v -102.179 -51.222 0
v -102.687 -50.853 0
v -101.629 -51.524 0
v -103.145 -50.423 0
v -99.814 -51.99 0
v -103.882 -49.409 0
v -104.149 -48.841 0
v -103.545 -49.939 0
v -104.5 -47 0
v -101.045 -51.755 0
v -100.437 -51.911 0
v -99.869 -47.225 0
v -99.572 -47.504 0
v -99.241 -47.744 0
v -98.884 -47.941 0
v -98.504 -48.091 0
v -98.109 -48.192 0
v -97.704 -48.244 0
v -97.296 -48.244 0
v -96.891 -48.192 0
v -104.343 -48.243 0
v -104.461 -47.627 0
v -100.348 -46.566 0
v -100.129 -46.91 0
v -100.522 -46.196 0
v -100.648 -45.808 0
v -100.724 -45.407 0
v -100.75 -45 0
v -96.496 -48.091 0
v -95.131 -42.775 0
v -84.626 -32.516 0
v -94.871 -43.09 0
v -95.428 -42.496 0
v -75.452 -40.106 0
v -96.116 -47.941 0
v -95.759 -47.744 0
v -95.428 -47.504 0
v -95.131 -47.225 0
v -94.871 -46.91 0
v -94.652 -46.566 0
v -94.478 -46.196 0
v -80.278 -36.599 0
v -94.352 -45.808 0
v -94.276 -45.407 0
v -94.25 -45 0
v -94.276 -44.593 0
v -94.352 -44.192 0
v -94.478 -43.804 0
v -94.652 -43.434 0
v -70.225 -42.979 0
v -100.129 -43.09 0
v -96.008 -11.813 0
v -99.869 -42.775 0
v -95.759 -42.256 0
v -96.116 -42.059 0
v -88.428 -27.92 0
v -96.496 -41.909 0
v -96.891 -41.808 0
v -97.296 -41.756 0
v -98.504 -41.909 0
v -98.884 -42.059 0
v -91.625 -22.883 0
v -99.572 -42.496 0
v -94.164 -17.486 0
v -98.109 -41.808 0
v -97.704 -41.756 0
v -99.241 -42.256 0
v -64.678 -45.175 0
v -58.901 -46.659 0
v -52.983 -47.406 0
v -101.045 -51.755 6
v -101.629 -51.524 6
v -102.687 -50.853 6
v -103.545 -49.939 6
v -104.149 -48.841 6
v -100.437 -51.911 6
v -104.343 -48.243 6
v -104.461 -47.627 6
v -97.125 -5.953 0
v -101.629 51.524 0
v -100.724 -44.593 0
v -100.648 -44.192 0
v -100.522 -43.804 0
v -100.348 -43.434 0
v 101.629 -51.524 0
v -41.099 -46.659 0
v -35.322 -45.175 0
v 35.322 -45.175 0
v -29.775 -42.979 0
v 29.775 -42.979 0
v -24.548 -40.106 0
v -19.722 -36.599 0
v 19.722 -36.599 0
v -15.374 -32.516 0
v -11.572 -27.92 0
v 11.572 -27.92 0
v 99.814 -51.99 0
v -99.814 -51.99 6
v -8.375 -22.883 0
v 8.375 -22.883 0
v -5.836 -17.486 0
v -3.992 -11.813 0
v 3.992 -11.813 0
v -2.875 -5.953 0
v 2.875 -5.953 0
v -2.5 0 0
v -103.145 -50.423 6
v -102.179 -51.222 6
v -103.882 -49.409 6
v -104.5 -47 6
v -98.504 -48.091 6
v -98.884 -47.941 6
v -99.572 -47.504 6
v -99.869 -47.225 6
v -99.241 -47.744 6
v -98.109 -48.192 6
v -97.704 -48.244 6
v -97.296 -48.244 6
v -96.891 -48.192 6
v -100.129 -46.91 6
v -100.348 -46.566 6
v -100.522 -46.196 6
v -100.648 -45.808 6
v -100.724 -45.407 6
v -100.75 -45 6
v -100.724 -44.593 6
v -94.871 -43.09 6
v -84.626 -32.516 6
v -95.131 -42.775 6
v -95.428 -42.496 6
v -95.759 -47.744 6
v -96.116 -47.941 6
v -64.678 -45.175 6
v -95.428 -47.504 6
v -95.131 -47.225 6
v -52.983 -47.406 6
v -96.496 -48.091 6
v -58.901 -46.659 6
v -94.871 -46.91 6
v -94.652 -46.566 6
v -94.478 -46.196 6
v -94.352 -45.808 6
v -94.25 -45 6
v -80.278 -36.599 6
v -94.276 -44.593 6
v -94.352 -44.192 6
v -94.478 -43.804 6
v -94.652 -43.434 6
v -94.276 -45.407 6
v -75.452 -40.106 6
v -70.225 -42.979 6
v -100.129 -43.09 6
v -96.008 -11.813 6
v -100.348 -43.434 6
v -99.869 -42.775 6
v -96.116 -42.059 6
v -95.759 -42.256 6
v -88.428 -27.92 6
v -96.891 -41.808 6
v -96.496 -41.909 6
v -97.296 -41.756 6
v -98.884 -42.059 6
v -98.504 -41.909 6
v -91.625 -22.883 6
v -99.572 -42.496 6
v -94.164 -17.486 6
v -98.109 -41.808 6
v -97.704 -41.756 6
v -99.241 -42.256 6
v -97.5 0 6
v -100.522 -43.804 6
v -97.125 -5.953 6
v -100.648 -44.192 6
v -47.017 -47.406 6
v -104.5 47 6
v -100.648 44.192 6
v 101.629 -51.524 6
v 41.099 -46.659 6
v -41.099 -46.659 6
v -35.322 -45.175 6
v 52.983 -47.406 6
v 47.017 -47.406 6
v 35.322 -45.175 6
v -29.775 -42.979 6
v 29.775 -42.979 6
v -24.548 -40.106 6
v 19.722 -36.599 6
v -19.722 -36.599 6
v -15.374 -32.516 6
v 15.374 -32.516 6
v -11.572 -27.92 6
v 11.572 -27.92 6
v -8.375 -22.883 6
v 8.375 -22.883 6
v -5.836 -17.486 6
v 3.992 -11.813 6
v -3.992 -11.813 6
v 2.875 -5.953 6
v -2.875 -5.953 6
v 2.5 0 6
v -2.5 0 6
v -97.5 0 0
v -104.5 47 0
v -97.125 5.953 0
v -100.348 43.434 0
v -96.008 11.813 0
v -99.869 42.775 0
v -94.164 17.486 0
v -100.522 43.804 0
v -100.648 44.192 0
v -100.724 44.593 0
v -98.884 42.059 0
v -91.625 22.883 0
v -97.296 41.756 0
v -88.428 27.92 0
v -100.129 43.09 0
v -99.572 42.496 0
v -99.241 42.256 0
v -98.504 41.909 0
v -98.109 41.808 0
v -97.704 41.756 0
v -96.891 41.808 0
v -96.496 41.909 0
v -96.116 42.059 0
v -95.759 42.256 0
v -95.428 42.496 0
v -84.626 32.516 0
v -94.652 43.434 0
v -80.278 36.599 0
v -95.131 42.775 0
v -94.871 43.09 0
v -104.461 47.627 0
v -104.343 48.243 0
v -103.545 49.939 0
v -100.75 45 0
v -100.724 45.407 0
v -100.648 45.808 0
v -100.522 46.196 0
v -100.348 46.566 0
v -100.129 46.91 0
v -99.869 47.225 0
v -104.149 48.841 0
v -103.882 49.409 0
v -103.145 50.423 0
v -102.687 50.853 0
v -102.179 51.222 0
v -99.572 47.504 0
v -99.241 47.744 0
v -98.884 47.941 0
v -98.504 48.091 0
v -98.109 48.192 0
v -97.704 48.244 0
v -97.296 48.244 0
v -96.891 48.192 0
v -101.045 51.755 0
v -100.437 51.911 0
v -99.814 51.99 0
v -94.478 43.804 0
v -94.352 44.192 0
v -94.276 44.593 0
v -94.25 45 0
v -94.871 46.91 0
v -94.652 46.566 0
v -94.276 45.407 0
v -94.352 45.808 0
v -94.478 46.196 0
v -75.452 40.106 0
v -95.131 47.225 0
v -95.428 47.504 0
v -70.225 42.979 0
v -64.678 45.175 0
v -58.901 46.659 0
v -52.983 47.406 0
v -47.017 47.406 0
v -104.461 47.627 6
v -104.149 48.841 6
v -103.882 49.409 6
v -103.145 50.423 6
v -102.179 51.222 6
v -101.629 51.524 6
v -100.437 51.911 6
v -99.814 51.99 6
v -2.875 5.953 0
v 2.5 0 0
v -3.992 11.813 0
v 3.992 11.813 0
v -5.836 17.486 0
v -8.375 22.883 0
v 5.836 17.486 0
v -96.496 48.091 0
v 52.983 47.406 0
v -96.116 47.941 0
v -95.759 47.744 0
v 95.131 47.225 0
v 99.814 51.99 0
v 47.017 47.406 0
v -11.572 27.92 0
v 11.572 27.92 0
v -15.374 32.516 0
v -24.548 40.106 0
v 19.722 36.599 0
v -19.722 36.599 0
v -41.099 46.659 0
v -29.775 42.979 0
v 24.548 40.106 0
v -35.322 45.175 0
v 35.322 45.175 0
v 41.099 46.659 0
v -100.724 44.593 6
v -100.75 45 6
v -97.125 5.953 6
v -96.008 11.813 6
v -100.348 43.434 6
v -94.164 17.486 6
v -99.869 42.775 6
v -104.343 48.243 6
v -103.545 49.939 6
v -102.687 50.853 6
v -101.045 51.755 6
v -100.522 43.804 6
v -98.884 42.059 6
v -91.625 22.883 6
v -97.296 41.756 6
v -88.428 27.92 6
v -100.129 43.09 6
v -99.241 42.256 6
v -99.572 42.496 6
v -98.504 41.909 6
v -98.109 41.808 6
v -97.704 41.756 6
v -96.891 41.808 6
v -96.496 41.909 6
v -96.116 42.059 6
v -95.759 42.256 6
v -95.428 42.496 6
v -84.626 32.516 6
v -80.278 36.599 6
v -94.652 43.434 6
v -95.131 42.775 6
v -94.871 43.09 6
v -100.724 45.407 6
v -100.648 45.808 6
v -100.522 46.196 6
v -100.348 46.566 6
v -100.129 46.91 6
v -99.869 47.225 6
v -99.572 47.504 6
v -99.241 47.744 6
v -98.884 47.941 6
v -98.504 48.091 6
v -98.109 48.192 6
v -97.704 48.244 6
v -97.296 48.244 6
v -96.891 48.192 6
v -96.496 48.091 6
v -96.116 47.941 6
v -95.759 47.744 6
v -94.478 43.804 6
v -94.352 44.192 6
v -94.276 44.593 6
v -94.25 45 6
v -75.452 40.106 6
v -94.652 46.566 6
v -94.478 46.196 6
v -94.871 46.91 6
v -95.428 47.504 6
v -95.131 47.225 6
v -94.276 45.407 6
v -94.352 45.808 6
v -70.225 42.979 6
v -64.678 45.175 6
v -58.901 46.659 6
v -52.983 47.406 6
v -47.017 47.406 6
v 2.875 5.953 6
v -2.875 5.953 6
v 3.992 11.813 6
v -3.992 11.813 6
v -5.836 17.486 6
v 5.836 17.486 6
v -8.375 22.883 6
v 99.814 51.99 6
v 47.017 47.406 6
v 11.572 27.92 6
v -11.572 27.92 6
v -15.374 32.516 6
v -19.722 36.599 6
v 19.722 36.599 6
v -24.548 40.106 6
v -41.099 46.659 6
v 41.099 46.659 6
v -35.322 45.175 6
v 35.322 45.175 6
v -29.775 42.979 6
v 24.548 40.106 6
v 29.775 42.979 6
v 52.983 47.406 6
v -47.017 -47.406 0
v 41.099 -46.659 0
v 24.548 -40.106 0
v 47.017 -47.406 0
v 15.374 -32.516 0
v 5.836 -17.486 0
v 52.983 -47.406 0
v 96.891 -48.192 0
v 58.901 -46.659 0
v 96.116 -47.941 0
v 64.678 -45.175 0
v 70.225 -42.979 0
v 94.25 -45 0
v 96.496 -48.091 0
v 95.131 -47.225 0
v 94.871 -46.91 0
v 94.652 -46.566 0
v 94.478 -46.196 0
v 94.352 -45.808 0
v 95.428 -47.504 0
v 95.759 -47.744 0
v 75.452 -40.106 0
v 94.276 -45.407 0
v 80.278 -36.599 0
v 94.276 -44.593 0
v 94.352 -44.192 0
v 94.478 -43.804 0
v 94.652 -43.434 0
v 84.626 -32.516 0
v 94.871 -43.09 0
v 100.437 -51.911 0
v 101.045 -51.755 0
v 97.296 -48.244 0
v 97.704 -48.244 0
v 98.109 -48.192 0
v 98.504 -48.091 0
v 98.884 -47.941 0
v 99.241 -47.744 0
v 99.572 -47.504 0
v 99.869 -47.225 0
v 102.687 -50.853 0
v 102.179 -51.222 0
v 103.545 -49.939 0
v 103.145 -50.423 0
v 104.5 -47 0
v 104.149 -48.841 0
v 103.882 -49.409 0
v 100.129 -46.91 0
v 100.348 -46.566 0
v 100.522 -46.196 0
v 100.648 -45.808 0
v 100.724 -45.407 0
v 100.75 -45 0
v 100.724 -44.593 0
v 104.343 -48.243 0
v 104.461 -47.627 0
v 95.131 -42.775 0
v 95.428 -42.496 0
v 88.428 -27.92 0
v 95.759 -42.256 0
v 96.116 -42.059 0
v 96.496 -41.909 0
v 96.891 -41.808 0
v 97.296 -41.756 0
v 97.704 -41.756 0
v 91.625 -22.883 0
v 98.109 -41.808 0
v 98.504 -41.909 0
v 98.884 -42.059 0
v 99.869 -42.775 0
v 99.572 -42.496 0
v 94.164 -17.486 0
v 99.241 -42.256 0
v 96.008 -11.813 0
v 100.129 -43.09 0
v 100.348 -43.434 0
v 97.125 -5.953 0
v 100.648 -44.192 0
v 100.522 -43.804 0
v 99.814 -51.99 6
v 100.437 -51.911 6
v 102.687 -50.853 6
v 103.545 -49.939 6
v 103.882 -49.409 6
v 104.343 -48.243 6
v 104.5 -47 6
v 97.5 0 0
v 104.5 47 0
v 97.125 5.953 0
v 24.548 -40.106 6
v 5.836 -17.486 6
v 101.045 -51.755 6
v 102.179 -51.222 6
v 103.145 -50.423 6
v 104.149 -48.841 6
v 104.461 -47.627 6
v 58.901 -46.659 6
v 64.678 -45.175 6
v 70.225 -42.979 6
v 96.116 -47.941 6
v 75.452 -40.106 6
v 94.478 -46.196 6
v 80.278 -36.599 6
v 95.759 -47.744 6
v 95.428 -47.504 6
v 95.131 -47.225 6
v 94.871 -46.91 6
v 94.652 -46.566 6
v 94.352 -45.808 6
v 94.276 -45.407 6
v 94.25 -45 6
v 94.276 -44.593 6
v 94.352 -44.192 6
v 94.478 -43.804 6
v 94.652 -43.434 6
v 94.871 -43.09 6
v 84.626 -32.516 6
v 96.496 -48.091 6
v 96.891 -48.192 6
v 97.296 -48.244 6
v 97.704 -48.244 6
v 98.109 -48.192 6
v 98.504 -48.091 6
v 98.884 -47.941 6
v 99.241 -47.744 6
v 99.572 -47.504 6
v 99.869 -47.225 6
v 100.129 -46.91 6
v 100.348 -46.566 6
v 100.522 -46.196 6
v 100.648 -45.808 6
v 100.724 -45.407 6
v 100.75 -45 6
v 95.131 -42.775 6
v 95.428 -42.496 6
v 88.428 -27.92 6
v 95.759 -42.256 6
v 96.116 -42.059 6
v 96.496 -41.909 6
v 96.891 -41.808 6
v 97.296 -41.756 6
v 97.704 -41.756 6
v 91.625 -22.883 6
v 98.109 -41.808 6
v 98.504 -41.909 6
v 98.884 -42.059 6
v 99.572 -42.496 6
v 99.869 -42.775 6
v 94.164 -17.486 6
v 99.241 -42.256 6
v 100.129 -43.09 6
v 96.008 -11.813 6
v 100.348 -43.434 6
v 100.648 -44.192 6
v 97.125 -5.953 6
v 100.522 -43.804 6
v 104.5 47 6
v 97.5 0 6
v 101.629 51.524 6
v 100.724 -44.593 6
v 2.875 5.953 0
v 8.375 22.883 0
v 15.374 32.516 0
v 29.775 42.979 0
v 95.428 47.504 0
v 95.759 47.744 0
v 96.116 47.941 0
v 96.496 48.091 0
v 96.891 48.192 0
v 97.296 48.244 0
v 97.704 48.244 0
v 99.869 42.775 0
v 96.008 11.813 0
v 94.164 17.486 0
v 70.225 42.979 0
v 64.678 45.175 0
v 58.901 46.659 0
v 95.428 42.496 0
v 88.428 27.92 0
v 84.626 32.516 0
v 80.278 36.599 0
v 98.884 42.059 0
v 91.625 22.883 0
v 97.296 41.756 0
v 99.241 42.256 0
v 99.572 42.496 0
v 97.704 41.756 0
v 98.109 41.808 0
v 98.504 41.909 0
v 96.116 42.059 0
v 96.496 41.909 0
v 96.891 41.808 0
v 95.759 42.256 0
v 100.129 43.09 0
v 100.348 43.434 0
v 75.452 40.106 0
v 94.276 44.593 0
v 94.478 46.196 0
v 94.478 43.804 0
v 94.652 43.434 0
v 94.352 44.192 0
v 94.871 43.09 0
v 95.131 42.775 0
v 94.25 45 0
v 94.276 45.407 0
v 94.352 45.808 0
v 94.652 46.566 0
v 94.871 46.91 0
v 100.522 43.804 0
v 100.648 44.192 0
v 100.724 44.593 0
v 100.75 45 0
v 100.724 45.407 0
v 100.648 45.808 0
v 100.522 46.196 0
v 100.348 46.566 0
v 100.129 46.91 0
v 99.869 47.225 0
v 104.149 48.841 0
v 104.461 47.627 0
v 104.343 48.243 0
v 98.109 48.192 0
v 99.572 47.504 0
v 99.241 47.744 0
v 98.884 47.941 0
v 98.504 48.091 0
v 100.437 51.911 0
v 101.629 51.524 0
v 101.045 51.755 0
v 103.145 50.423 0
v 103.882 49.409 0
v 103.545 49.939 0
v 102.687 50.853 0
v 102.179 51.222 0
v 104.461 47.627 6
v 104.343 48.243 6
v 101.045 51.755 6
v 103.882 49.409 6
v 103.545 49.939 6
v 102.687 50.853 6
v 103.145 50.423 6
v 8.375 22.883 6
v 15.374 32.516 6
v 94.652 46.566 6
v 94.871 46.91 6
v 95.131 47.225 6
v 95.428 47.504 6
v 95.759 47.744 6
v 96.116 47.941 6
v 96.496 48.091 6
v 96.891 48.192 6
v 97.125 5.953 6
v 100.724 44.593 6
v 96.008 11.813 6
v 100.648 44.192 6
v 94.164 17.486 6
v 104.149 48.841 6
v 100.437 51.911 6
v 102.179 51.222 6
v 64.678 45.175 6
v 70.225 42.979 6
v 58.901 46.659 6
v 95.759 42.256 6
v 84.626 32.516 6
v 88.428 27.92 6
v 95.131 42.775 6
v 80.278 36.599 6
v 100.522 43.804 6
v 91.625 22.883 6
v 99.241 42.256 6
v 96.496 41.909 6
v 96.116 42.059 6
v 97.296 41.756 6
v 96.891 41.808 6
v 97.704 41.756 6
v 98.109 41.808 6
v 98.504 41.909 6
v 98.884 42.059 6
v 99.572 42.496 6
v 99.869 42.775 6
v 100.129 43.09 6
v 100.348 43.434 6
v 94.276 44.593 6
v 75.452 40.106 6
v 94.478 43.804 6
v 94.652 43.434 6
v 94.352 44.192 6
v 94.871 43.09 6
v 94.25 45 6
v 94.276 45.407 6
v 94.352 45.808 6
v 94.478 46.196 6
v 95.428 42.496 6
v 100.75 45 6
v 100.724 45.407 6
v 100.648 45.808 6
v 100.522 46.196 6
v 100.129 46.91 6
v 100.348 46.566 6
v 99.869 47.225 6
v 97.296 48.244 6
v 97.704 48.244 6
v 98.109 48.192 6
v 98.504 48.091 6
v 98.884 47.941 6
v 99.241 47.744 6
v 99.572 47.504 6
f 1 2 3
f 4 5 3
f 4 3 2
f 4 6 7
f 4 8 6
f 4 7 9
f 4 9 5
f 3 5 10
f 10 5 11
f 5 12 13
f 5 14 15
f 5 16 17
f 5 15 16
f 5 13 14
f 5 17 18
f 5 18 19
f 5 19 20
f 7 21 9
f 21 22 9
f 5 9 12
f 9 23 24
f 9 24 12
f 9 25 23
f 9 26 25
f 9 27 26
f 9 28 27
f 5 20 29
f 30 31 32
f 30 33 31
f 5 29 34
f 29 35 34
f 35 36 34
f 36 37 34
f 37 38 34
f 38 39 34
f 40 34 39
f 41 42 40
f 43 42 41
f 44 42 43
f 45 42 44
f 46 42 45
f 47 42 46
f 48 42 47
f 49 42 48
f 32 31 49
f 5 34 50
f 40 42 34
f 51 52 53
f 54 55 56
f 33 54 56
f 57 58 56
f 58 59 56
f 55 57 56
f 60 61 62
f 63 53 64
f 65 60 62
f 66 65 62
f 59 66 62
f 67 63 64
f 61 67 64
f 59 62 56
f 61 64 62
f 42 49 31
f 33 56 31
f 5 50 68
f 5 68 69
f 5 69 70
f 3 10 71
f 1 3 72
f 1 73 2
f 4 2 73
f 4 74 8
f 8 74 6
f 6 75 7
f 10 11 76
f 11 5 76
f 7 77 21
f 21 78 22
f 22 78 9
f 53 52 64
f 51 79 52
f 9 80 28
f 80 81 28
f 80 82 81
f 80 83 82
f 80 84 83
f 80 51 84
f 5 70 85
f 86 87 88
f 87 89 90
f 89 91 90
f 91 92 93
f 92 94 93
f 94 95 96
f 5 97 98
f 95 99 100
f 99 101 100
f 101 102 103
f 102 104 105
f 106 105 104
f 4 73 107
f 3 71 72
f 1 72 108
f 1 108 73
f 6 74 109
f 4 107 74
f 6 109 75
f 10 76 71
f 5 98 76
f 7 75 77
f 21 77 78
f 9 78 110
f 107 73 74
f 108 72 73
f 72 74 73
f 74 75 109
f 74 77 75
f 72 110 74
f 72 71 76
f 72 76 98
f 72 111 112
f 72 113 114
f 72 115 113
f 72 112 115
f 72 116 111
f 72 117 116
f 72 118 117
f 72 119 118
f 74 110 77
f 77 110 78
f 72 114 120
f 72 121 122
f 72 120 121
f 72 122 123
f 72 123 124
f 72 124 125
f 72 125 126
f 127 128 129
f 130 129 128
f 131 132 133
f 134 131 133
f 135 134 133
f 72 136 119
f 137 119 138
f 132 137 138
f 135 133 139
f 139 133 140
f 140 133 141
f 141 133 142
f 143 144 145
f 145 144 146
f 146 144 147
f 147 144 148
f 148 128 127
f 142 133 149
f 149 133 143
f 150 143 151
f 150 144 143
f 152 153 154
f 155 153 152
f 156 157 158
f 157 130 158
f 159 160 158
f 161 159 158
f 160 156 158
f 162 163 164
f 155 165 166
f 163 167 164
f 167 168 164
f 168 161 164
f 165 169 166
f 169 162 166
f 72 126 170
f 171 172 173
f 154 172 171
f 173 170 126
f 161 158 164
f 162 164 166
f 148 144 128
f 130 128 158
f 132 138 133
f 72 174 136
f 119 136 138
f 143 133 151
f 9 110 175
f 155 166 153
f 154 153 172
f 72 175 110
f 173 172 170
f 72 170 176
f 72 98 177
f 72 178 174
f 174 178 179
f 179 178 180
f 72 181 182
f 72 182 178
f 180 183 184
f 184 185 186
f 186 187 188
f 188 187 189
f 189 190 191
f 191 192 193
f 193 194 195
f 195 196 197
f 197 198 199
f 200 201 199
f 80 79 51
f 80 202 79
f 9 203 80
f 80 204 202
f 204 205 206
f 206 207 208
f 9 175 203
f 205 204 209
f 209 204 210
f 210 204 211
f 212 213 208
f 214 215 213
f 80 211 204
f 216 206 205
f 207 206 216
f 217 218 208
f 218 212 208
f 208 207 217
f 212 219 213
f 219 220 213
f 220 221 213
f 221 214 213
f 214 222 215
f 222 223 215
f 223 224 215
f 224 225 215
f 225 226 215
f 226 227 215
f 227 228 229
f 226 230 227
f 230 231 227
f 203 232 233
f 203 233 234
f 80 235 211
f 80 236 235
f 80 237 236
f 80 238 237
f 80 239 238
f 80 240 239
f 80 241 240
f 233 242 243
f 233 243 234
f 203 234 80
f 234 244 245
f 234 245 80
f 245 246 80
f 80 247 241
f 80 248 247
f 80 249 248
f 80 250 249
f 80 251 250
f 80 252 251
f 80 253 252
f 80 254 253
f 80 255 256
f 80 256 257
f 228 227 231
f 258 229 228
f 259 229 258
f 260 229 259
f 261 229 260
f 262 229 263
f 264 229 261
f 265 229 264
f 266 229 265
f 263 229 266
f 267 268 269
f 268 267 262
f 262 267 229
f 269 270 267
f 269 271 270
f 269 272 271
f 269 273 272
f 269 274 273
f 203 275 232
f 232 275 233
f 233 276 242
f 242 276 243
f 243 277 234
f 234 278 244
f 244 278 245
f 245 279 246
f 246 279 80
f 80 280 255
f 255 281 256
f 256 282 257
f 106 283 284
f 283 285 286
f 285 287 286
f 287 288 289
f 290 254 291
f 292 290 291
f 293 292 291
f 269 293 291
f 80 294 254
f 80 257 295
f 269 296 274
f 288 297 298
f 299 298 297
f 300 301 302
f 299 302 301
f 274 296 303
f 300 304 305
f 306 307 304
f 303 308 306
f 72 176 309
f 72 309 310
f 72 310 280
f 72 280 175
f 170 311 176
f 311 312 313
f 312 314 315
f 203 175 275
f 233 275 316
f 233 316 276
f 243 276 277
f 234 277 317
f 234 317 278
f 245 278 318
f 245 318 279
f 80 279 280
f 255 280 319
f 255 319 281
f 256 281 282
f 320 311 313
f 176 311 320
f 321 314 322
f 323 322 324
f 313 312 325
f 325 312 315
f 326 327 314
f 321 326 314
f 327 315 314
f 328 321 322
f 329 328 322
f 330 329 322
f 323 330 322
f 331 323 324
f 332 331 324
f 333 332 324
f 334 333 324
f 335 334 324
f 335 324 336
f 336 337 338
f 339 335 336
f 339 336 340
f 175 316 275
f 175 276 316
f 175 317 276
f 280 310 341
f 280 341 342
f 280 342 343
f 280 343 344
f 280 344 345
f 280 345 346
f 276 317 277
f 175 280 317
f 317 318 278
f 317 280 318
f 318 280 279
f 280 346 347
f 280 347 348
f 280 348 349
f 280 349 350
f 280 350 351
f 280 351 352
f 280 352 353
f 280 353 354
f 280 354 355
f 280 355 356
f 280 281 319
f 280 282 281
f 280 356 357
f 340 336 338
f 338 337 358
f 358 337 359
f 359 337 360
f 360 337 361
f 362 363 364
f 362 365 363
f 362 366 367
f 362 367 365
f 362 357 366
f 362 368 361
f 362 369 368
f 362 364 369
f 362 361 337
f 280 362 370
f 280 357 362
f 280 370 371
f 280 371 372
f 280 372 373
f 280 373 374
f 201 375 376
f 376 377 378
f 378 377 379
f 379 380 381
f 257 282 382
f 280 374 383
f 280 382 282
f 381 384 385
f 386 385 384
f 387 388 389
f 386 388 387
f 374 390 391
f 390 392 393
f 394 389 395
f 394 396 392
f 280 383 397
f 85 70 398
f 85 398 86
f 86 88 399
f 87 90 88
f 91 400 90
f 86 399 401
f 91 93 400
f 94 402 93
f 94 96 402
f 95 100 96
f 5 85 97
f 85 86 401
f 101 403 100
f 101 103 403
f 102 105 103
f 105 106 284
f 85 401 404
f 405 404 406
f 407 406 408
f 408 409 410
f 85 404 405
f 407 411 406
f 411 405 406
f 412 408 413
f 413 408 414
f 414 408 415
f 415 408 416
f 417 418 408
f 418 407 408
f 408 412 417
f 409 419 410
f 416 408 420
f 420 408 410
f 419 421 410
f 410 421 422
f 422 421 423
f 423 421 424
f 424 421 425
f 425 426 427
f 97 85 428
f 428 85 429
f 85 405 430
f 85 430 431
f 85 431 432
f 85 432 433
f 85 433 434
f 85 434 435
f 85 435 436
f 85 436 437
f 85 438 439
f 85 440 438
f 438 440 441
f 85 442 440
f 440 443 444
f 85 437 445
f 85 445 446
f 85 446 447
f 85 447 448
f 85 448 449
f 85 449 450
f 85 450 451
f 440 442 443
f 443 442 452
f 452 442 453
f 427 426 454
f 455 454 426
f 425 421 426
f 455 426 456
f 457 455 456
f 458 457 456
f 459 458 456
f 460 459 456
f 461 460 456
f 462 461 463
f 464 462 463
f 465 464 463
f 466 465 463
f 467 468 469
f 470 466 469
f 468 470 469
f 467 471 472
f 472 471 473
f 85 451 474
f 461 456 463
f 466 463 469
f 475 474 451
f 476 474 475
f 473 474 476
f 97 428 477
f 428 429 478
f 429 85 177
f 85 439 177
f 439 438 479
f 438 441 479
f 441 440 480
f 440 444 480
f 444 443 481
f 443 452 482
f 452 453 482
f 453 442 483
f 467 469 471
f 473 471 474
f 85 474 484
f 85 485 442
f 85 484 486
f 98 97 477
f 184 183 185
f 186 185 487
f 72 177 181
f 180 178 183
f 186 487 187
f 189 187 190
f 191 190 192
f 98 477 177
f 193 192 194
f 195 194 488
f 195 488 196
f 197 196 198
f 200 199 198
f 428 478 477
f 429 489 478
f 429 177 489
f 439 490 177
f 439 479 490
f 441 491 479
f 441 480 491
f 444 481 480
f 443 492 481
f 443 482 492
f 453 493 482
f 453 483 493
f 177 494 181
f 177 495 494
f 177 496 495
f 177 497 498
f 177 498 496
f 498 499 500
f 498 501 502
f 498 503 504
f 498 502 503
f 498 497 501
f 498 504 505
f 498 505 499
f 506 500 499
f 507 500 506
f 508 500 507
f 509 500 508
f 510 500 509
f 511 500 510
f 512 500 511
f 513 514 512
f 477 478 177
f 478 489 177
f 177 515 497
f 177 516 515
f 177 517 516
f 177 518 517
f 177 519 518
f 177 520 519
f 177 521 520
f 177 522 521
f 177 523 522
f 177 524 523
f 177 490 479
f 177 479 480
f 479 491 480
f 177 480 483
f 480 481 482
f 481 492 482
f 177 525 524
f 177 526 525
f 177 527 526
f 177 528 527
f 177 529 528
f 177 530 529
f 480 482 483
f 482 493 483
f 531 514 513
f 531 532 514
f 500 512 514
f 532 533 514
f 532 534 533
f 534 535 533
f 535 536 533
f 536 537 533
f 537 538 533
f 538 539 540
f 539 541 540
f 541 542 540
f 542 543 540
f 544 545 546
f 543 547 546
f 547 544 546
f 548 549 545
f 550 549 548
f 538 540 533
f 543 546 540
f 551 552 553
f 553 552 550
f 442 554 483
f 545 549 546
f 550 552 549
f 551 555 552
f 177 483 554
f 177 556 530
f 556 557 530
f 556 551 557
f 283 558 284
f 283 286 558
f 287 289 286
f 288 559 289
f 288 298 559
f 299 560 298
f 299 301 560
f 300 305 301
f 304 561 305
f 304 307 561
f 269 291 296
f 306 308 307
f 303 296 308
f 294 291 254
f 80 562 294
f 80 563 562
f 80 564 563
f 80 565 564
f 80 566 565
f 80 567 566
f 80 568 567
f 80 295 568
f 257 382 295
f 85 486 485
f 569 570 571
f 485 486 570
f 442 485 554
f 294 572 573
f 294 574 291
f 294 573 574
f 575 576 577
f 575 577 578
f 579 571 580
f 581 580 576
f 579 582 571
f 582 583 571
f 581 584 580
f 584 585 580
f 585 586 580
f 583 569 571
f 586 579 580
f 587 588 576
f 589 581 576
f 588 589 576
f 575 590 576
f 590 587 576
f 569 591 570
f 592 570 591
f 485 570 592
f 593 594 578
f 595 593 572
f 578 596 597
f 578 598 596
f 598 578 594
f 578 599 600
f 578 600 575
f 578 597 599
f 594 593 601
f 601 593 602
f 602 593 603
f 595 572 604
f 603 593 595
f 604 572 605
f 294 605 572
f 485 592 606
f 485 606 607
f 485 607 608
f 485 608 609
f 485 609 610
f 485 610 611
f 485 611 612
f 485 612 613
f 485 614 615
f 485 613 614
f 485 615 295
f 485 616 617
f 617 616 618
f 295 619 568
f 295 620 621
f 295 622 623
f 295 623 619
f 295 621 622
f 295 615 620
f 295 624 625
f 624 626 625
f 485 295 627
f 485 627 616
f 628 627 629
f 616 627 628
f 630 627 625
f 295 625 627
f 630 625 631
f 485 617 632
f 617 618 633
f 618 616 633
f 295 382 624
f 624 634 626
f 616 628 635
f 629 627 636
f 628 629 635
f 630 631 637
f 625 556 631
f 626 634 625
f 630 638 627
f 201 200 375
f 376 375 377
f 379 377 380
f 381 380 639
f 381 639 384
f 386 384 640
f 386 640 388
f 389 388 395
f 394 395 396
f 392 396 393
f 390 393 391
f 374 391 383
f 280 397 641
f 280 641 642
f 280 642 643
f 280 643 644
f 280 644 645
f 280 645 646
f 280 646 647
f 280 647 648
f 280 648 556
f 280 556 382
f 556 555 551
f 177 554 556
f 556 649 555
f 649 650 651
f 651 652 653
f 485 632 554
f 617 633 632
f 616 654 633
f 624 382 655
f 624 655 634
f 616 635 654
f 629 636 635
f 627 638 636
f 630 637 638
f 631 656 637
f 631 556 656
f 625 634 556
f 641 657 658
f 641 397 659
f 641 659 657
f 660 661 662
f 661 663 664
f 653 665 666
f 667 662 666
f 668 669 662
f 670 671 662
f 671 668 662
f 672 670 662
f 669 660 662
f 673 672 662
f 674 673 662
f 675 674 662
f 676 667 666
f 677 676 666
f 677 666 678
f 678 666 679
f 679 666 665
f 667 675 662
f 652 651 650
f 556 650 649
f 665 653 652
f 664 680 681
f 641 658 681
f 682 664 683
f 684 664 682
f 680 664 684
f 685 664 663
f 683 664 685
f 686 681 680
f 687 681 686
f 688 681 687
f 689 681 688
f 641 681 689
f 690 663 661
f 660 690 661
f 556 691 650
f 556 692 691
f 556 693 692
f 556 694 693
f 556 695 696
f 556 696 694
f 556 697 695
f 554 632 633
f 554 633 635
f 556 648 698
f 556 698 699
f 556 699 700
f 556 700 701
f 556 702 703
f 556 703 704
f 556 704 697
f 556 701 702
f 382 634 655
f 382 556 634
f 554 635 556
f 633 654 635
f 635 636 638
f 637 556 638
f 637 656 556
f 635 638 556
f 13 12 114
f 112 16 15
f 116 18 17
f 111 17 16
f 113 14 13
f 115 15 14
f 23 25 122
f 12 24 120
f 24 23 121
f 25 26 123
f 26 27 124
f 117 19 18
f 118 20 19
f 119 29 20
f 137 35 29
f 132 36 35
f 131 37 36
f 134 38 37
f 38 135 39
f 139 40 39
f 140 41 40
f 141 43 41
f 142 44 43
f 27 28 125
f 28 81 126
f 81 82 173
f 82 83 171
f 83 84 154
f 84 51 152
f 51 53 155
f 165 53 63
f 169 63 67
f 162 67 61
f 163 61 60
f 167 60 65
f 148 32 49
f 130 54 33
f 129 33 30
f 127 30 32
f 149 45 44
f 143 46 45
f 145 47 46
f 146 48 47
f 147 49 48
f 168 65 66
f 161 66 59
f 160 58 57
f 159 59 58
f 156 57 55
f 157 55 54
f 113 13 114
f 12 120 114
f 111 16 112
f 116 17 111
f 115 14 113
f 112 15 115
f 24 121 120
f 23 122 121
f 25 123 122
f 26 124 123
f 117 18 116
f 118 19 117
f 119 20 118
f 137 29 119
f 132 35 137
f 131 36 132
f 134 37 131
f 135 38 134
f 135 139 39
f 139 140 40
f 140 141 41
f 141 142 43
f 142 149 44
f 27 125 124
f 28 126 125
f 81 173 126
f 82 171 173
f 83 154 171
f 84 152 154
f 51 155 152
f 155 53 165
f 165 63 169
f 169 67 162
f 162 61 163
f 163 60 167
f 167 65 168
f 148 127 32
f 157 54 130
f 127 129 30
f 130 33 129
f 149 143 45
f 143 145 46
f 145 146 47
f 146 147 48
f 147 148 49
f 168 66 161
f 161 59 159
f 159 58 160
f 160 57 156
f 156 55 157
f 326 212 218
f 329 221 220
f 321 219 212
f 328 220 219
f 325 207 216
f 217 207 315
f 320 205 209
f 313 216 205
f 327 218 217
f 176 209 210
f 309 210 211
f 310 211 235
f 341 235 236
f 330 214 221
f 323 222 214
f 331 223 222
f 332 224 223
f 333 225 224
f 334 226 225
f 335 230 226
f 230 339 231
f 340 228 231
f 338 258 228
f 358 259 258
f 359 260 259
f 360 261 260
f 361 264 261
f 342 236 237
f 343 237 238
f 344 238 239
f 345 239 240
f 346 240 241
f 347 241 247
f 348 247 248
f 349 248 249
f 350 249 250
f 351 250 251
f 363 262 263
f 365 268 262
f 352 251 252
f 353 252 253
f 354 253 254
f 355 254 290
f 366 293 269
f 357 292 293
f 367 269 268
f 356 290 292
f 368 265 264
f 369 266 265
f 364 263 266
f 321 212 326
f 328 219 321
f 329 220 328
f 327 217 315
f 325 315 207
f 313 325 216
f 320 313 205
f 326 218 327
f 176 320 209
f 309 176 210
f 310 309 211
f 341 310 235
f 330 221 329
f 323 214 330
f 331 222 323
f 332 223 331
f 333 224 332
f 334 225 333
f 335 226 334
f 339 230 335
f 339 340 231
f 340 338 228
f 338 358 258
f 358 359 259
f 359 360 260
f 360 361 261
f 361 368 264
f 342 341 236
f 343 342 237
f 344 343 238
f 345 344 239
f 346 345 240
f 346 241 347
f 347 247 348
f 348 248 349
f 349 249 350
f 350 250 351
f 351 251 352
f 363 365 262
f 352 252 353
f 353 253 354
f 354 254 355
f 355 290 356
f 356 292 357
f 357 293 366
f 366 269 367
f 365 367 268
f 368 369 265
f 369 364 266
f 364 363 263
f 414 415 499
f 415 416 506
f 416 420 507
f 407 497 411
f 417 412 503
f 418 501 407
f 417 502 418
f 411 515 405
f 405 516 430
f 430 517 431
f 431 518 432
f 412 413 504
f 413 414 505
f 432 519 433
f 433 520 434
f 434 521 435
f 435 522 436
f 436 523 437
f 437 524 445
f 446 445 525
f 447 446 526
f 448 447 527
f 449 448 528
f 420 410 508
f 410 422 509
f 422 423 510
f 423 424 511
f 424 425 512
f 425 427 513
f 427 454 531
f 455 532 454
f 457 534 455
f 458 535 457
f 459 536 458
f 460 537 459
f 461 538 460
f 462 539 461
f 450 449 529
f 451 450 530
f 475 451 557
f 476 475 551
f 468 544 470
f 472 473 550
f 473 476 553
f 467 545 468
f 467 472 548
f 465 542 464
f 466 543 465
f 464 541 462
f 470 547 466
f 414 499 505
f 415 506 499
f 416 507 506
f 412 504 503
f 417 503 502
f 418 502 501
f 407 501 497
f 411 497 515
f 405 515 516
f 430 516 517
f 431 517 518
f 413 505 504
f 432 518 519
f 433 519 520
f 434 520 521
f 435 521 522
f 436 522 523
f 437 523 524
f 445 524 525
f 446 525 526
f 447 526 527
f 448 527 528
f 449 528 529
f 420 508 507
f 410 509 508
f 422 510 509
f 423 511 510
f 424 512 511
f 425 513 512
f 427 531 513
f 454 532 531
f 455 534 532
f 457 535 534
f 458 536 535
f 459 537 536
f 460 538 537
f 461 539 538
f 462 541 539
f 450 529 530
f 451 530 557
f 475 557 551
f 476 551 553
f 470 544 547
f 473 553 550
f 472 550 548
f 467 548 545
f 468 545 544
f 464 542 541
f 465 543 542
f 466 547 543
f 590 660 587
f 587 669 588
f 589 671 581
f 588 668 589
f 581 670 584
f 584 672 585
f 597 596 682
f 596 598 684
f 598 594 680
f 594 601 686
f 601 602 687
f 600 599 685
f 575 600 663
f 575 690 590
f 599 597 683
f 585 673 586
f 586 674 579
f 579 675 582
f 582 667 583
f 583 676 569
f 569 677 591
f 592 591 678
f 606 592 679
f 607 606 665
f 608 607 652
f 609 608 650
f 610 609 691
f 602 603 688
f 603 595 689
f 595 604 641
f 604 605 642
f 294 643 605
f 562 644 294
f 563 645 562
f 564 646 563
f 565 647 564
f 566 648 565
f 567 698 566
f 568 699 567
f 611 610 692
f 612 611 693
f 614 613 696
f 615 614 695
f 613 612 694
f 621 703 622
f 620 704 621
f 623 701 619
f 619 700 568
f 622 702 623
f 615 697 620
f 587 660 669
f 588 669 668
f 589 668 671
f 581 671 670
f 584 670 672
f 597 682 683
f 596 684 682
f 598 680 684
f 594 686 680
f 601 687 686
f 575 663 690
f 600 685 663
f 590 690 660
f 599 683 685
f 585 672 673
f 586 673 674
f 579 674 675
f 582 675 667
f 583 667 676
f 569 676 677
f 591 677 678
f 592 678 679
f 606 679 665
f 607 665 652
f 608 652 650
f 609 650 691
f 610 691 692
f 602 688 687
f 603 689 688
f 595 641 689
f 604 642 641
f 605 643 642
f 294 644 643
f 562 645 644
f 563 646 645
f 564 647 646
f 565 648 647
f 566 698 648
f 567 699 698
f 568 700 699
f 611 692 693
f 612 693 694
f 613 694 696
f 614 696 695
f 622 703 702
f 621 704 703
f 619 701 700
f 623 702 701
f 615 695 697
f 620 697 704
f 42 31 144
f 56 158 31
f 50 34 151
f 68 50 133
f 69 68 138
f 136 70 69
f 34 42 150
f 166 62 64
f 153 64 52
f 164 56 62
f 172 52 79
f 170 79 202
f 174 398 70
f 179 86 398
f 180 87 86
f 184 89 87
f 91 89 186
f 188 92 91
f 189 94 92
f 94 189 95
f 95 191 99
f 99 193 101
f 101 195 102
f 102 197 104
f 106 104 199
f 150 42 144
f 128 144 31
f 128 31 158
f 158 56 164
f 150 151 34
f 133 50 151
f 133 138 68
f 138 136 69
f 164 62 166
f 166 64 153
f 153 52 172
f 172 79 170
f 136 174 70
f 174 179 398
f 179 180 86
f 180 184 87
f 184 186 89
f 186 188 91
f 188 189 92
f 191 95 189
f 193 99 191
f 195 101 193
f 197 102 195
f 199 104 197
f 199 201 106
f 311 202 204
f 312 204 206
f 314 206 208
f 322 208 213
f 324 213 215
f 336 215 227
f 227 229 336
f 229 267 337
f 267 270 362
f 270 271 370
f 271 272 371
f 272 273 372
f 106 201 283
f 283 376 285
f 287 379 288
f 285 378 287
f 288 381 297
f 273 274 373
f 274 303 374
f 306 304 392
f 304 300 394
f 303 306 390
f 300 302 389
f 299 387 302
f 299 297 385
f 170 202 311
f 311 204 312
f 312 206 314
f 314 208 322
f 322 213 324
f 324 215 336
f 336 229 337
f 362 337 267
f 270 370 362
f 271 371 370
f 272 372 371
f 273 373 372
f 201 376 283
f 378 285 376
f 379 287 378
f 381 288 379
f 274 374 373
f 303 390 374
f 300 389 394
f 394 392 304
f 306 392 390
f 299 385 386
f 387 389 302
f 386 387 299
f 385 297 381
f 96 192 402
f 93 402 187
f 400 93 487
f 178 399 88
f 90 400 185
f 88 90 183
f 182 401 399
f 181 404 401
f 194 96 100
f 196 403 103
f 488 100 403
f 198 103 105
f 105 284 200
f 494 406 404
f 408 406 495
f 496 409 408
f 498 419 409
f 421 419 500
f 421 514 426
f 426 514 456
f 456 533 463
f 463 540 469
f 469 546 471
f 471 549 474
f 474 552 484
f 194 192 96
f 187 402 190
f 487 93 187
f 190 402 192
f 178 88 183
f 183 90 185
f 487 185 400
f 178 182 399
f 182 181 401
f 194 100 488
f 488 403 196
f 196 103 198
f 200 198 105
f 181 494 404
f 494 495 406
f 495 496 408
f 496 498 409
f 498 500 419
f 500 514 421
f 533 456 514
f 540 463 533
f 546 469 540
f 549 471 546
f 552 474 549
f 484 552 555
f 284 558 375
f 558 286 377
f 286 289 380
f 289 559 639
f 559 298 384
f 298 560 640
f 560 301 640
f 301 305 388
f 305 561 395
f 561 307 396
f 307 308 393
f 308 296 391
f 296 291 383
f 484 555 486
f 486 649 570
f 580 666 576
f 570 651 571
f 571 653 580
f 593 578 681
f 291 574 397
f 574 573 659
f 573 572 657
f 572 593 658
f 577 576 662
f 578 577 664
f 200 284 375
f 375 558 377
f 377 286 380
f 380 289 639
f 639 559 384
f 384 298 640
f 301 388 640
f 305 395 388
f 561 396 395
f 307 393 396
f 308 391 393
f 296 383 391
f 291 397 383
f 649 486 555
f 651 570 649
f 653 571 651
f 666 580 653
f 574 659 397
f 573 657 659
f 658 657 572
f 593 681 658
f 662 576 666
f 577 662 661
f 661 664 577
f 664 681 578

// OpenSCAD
$fn = 50;

difference() {
	union() {
		hull() {
			translate(v = [-99.5, 47.0, 0]) {
				cylinder(h = 6, r = 5);
			}
			translate(v = [99.5, 47.0, 0]) {
				cylinder(h = 6, r = 5);
			}
			translate(v = [-99.5, -47.0, 0]) {
				cylinder(h = 6, r = 5);
			}
			translate(v = [99.5, -47.0, 0]) {
				cylinder(h = 6, r = 5);
			}
		}
	}
	union() {
		translate(v = [-97.5, -45.0, -100.0]) {
			cylinder(h = 200, r = 3.25);
		}
		translate(v = [-97.5, 45.0, -100.0]) {
			cylinder(h = 200, r = 3.25);
		}
		translate(v = [97.5, -45.0, -100.0]) {
			cylinder(h = 200, r = 3.25);
		}
		translate(v = [97.5, 45.0, -100.0]) {
			cylinder(h = 200, r = 3.25);
		}
		translate(v = [-97.5, -45.0, -100.0]) {
			cylinder(h = 200, r = 1.8);
		}
		translate(v = [-97.5, 45.0, -100.0]) {
			cylinder(h = 200, r = 1.8);
		}
		translate(v = [97.5, -45.0, -100.0]) {
			cylinder(h = 200, r = 1.8);
		}
		translate(v = [97.5, 45.0, -100.0]) {
			cylinder(h = 200, r = 1.8);
		}
		translate(v = [-50.0, 0, 0.0]) {
			cylinder(h = 6, r = 47.5);
		}
		translate(v = [50.0, 0, 0.0]) {
			cylinder(h = 6, r = 47.5);
		}
	}
}
